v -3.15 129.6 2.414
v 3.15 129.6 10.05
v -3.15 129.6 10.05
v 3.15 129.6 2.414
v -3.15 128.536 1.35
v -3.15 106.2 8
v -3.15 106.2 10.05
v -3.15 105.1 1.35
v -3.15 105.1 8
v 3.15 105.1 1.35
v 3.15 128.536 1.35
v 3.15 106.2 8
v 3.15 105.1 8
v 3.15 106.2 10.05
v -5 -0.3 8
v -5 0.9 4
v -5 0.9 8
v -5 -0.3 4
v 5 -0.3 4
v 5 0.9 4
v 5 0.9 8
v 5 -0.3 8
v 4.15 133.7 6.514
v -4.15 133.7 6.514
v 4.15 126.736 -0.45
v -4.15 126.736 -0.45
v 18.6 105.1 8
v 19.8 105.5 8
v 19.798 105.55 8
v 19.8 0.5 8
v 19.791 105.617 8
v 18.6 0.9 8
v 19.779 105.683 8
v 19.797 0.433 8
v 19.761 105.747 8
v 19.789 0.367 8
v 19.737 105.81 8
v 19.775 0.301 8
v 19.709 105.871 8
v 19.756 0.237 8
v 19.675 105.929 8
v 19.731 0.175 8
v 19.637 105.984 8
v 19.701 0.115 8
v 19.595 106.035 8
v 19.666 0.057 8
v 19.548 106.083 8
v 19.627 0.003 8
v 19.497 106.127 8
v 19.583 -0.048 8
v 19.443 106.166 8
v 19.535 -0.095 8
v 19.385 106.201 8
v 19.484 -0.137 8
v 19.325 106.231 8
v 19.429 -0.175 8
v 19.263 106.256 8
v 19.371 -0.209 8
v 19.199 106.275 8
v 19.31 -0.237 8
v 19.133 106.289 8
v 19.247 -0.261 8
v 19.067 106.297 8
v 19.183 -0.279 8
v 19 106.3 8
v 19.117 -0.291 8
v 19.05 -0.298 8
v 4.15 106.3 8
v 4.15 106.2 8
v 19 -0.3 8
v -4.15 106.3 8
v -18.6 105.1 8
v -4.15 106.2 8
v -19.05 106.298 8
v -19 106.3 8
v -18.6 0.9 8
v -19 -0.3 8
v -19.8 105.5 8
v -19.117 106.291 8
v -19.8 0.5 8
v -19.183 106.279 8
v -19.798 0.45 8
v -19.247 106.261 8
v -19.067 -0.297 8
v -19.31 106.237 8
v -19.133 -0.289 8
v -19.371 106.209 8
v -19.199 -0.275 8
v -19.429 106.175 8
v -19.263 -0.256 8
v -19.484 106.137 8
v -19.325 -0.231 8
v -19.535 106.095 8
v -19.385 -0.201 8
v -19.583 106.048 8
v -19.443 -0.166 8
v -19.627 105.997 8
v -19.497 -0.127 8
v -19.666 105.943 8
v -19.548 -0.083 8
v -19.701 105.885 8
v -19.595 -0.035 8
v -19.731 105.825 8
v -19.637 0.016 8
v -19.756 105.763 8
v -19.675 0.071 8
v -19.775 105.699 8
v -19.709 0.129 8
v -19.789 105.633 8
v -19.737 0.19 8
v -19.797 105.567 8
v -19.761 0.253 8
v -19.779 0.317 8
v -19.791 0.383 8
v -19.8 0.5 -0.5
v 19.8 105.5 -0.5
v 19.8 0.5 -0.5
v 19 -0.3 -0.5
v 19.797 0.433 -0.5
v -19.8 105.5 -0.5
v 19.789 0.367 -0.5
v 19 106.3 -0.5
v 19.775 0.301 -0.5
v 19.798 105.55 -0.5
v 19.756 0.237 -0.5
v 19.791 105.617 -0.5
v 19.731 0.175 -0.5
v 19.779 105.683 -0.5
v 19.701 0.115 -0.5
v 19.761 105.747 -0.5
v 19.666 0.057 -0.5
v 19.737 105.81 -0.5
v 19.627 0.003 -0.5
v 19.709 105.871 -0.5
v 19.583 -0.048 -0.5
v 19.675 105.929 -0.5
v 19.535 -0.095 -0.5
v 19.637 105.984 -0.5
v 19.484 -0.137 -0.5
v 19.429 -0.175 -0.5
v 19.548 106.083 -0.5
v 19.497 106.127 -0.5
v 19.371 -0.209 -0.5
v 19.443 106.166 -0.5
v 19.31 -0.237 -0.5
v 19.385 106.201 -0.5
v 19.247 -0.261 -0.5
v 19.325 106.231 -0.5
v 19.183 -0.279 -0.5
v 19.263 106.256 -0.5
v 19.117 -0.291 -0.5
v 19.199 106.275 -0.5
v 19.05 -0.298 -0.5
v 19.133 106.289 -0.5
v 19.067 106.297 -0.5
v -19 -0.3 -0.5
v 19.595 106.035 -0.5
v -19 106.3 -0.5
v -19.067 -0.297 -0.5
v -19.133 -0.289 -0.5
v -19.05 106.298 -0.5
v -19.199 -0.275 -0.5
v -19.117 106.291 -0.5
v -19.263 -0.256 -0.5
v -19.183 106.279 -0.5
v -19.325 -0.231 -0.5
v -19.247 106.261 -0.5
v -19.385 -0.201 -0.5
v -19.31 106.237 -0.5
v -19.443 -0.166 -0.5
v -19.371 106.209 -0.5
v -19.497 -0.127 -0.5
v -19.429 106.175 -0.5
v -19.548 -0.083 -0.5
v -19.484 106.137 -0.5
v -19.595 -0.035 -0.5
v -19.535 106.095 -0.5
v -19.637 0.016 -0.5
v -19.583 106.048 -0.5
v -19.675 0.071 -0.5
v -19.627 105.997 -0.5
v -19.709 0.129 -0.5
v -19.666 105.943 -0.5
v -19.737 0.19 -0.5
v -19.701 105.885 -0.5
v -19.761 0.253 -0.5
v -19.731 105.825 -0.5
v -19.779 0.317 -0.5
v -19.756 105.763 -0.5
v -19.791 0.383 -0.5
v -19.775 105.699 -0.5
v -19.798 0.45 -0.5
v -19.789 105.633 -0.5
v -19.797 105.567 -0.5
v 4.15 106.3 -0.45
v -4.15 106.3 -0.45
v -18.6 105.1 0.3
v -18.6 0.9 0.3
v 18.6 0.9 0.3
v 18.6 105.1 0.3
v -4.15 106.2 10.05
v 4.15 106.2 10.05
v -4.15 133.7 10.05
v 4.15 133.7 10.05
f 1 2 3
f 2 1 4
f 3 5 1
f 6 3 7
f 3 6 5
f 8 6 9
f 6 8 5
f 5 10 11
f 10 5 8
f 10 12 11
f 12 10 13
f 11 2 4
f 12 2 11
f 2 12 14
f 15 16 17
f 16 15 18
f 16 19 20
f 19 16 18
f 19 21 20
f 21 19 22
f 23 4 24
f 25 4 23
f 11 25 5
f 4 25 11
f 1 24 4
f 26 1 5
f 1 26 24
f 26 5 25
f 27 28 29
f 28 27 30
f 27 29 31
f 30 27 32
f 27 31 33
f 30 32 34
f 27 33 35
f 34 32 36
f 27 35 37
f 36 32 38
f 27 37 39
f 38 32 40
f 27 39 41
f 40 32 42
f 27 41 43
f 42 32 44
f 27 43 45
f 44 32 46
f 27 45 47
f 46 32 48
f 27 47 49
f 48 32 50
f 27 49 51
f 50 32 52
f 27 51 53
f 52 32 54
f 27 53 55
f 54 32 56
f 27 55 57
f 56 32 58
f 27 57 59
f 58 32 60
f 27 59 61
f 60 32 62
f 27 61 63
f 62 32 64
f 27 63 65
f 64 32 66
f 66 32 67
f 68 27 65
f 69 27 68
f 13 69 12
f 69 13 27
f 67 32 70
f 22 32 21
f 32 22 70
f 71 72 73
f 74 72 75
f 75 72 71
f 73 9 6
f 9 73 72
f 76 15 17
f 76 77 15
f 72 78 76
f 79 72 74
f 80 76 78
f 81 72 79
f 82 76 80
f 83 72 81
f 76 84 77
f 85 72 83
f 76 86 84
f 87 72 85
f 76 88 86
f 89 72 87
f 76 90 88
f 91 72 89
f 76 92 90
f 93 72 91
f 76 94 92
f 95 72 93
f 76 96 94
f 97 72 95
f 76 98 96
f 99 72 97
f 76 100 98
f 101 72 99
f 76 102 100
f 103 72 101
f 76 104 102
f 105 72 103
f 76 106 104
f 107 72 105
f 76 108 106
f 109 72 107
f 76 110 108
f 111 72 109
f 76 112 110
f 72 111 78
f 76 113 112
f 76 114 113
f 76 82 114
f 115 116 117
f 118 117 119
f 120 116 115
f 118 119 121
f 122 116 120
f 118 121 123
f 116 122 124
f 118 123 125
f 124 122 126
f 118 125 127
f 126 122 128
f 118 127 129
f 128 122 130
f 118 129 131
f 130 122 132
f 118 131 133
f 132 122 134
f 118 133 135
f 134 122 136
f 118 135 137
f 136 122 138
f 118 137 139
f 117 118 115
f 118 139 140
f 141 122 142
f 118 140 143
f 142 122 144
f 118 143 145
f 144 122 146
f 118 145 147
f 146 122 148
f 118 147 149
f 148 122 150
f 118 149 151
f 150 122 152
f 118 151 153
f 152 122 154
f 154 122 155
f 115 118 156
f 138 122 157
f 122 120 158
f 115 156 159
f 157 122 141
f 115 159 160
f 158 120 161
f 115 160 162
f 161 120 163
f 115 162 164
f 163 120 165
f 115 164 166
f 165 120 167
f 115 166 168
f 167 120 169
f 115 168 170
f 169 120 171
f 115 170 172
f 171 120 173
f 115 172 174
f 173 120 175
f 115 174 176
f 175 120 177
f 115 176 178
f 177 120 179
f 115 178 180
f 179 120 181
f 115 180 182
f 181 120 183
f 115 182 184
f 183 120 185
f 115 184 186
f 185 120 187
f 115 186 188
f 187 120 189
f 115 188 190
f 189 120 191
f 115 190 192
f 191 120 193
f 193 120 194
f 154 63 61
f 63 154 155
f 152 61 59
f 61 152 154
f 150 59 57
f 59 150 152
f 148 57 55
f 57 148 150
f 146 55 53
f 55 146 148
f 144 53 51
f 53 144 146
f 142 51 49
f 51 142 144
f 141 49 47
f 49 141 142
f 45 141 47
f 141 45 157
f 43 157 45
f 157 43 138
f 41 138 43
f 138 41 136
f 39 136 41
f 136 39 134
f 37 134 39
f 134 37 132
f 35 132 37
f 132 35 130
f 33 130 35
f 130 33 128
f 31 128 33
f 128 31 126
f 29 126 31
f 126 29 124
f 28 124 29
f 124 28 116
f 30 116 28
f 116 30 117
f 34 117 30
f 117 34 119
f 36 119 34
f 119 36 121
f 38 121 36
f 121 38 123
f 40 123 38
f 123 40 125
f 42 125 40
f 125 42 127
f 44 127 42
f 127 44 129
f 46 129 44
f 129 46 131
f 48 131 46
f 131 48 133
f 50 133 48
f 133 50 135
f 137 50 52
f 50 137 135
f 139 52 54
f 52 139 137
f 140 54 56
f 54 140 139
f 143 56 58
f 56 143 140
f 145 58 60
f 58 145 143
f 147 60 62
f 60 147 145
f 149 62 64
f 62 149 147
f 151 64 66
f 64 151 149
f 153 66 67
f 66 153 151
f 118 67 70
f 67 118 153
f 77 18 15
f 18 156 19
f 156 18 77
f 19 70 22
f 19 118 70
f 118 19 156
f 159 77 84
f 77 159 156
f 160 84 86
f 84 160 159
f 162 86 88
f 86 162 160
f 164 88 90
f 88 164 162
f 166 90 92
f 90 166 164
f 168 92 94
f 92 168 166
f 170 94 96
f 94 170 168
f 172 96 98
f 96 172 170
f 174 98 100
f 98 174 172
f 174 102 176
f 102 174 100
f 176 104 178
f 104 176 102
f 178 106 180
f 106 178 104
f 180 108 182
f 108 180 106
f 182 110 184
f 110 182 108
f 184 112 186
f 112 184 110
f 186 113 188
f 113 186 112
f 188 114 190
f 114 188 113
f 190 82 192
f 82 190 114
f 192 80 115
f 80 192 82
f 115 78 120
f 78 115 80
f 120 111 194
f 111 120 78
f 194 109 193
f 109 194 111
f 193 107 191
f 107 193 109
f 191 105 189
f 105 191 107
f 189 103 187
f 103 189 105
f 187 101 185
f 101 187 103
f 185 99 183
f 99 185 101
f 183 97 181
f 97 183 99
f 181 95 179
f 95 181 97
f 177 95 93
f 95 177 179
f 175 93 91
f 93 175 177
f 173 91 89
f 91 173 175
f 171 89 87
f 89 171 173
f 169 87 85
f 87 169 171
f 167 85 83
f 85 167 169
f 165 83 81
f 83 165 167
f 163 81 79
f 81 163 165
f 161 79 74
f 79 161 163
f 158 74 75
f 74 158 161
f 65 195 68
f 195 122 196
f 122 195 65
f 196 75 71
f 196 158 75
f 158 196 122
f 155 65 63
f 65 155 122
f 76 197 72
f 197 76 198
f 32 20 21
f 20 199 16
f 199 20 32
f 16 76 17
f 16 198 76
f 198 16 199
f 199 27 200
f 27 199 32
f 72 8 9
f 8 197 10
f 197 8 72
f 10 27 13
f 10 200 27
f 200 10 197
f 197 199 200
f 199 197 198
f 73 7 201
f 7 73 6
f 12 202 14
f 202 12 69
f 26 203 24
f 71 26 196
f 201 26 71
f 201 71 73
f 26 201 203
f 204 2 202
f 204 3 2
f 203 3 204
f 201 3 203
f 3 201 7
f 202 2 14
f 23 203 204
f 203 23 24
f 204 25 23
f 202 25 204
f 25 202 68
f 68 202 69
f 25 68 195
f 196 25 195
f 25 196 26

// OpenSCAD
$fn=75;

BOX_W = 38;
BOX_L = 105;
BOX_H = 8.5;

WALL = 0.8;

CORNER_RADIUS = 0.8;

MIC_OUTSIDE_W=8.3;
MIC_OUTSIDE_H=10.5;

MIC_INSIDE_W=6.3;
MIC_L=27.5;

MIC_OFFSET_X = 0;
MIC_OFFSET_Y = -33.4;
MIC_OFFSET_Z = -0.9;

VENT_OFFSET = -4.5;
VENT_L = 19.0;
VENT_R = -19.0;

module roundedRectangle(width, length, radius) {
    difference() {
        offset(r=radius) square([width, length], center=true);
        offset(r=radius - WALL) square([width - WALL, length - WALL], center=true);
    }
}

module mainLid() {
    // sides of box
    linear_extrude(BOX_H)
    roundedRectangle(BOX_W, BOX_L, CORNER_RADIUS);
    // base of box
    translate([0, 0, BOX_H - WALL]) {
        linear_extrude(WALL) square([BOX_W, BOX_L], center=true);
    }
}

module micBox() {
        translate([0, -53.2, 3.2])
        rotate([90, 0, 0])
        linear_extrude(MIC_L) square([MIC_OUTSIDE_W, MIC_OUTSIDE_H], center=true);
    }
//}

module vent(x, y, vent_offset) {
    translate([x, y, BOX_H + vent_offset]) {
        rotate([90, 0, 90]) {
            cylinder(h=3.0, d=2.0, center=true);
        }
    }
}

module cutouts() {
    translate([MIC_OFFSET_X, MIC_OFFSET_Y, MIC_OFFSET_Z]) {
        // Inside mic channel
        translate([0, +110, BOX_H-18])
        rotate([90, 0, 0])
        linear_extrude(MIC_L  +4.1) square([MIC_INSIDE_W, MIC_OUTSIDE_H], center=true);
        
        // Mic lid clearance at mic box opening
        //translate([0, -17, BOX_H-0.10])
        //rotate([90, 0, 0])
        //linear_extrude(2.0) square([9, 2.2], center=true);
    }

    // Cable exit
    translate([0, -51.0, BOX_H-18.5])
    rotate([90, 0, 0])
    linear_extrude(3.0) square([10, 6], center=true);
    
    // front of keel slope
    translate([-5, BOX_L-26, -23.5])
    rotate([45, 0, 0])
    //(x, z, y)
    #cube([10, 11, 8]); 
}

// put it all together
translate([0, 53, 17]) { // offset model to start on 0, 0, 0
    difference() {
        rotate([180, 0, 0]) { // Flipping the entire object along the X axis
            union() {
                translate([0, 0, 9.0]) { 
                    mainLid();
                    micBox();
                }
            }
        }
        cutouts();
    }
}
